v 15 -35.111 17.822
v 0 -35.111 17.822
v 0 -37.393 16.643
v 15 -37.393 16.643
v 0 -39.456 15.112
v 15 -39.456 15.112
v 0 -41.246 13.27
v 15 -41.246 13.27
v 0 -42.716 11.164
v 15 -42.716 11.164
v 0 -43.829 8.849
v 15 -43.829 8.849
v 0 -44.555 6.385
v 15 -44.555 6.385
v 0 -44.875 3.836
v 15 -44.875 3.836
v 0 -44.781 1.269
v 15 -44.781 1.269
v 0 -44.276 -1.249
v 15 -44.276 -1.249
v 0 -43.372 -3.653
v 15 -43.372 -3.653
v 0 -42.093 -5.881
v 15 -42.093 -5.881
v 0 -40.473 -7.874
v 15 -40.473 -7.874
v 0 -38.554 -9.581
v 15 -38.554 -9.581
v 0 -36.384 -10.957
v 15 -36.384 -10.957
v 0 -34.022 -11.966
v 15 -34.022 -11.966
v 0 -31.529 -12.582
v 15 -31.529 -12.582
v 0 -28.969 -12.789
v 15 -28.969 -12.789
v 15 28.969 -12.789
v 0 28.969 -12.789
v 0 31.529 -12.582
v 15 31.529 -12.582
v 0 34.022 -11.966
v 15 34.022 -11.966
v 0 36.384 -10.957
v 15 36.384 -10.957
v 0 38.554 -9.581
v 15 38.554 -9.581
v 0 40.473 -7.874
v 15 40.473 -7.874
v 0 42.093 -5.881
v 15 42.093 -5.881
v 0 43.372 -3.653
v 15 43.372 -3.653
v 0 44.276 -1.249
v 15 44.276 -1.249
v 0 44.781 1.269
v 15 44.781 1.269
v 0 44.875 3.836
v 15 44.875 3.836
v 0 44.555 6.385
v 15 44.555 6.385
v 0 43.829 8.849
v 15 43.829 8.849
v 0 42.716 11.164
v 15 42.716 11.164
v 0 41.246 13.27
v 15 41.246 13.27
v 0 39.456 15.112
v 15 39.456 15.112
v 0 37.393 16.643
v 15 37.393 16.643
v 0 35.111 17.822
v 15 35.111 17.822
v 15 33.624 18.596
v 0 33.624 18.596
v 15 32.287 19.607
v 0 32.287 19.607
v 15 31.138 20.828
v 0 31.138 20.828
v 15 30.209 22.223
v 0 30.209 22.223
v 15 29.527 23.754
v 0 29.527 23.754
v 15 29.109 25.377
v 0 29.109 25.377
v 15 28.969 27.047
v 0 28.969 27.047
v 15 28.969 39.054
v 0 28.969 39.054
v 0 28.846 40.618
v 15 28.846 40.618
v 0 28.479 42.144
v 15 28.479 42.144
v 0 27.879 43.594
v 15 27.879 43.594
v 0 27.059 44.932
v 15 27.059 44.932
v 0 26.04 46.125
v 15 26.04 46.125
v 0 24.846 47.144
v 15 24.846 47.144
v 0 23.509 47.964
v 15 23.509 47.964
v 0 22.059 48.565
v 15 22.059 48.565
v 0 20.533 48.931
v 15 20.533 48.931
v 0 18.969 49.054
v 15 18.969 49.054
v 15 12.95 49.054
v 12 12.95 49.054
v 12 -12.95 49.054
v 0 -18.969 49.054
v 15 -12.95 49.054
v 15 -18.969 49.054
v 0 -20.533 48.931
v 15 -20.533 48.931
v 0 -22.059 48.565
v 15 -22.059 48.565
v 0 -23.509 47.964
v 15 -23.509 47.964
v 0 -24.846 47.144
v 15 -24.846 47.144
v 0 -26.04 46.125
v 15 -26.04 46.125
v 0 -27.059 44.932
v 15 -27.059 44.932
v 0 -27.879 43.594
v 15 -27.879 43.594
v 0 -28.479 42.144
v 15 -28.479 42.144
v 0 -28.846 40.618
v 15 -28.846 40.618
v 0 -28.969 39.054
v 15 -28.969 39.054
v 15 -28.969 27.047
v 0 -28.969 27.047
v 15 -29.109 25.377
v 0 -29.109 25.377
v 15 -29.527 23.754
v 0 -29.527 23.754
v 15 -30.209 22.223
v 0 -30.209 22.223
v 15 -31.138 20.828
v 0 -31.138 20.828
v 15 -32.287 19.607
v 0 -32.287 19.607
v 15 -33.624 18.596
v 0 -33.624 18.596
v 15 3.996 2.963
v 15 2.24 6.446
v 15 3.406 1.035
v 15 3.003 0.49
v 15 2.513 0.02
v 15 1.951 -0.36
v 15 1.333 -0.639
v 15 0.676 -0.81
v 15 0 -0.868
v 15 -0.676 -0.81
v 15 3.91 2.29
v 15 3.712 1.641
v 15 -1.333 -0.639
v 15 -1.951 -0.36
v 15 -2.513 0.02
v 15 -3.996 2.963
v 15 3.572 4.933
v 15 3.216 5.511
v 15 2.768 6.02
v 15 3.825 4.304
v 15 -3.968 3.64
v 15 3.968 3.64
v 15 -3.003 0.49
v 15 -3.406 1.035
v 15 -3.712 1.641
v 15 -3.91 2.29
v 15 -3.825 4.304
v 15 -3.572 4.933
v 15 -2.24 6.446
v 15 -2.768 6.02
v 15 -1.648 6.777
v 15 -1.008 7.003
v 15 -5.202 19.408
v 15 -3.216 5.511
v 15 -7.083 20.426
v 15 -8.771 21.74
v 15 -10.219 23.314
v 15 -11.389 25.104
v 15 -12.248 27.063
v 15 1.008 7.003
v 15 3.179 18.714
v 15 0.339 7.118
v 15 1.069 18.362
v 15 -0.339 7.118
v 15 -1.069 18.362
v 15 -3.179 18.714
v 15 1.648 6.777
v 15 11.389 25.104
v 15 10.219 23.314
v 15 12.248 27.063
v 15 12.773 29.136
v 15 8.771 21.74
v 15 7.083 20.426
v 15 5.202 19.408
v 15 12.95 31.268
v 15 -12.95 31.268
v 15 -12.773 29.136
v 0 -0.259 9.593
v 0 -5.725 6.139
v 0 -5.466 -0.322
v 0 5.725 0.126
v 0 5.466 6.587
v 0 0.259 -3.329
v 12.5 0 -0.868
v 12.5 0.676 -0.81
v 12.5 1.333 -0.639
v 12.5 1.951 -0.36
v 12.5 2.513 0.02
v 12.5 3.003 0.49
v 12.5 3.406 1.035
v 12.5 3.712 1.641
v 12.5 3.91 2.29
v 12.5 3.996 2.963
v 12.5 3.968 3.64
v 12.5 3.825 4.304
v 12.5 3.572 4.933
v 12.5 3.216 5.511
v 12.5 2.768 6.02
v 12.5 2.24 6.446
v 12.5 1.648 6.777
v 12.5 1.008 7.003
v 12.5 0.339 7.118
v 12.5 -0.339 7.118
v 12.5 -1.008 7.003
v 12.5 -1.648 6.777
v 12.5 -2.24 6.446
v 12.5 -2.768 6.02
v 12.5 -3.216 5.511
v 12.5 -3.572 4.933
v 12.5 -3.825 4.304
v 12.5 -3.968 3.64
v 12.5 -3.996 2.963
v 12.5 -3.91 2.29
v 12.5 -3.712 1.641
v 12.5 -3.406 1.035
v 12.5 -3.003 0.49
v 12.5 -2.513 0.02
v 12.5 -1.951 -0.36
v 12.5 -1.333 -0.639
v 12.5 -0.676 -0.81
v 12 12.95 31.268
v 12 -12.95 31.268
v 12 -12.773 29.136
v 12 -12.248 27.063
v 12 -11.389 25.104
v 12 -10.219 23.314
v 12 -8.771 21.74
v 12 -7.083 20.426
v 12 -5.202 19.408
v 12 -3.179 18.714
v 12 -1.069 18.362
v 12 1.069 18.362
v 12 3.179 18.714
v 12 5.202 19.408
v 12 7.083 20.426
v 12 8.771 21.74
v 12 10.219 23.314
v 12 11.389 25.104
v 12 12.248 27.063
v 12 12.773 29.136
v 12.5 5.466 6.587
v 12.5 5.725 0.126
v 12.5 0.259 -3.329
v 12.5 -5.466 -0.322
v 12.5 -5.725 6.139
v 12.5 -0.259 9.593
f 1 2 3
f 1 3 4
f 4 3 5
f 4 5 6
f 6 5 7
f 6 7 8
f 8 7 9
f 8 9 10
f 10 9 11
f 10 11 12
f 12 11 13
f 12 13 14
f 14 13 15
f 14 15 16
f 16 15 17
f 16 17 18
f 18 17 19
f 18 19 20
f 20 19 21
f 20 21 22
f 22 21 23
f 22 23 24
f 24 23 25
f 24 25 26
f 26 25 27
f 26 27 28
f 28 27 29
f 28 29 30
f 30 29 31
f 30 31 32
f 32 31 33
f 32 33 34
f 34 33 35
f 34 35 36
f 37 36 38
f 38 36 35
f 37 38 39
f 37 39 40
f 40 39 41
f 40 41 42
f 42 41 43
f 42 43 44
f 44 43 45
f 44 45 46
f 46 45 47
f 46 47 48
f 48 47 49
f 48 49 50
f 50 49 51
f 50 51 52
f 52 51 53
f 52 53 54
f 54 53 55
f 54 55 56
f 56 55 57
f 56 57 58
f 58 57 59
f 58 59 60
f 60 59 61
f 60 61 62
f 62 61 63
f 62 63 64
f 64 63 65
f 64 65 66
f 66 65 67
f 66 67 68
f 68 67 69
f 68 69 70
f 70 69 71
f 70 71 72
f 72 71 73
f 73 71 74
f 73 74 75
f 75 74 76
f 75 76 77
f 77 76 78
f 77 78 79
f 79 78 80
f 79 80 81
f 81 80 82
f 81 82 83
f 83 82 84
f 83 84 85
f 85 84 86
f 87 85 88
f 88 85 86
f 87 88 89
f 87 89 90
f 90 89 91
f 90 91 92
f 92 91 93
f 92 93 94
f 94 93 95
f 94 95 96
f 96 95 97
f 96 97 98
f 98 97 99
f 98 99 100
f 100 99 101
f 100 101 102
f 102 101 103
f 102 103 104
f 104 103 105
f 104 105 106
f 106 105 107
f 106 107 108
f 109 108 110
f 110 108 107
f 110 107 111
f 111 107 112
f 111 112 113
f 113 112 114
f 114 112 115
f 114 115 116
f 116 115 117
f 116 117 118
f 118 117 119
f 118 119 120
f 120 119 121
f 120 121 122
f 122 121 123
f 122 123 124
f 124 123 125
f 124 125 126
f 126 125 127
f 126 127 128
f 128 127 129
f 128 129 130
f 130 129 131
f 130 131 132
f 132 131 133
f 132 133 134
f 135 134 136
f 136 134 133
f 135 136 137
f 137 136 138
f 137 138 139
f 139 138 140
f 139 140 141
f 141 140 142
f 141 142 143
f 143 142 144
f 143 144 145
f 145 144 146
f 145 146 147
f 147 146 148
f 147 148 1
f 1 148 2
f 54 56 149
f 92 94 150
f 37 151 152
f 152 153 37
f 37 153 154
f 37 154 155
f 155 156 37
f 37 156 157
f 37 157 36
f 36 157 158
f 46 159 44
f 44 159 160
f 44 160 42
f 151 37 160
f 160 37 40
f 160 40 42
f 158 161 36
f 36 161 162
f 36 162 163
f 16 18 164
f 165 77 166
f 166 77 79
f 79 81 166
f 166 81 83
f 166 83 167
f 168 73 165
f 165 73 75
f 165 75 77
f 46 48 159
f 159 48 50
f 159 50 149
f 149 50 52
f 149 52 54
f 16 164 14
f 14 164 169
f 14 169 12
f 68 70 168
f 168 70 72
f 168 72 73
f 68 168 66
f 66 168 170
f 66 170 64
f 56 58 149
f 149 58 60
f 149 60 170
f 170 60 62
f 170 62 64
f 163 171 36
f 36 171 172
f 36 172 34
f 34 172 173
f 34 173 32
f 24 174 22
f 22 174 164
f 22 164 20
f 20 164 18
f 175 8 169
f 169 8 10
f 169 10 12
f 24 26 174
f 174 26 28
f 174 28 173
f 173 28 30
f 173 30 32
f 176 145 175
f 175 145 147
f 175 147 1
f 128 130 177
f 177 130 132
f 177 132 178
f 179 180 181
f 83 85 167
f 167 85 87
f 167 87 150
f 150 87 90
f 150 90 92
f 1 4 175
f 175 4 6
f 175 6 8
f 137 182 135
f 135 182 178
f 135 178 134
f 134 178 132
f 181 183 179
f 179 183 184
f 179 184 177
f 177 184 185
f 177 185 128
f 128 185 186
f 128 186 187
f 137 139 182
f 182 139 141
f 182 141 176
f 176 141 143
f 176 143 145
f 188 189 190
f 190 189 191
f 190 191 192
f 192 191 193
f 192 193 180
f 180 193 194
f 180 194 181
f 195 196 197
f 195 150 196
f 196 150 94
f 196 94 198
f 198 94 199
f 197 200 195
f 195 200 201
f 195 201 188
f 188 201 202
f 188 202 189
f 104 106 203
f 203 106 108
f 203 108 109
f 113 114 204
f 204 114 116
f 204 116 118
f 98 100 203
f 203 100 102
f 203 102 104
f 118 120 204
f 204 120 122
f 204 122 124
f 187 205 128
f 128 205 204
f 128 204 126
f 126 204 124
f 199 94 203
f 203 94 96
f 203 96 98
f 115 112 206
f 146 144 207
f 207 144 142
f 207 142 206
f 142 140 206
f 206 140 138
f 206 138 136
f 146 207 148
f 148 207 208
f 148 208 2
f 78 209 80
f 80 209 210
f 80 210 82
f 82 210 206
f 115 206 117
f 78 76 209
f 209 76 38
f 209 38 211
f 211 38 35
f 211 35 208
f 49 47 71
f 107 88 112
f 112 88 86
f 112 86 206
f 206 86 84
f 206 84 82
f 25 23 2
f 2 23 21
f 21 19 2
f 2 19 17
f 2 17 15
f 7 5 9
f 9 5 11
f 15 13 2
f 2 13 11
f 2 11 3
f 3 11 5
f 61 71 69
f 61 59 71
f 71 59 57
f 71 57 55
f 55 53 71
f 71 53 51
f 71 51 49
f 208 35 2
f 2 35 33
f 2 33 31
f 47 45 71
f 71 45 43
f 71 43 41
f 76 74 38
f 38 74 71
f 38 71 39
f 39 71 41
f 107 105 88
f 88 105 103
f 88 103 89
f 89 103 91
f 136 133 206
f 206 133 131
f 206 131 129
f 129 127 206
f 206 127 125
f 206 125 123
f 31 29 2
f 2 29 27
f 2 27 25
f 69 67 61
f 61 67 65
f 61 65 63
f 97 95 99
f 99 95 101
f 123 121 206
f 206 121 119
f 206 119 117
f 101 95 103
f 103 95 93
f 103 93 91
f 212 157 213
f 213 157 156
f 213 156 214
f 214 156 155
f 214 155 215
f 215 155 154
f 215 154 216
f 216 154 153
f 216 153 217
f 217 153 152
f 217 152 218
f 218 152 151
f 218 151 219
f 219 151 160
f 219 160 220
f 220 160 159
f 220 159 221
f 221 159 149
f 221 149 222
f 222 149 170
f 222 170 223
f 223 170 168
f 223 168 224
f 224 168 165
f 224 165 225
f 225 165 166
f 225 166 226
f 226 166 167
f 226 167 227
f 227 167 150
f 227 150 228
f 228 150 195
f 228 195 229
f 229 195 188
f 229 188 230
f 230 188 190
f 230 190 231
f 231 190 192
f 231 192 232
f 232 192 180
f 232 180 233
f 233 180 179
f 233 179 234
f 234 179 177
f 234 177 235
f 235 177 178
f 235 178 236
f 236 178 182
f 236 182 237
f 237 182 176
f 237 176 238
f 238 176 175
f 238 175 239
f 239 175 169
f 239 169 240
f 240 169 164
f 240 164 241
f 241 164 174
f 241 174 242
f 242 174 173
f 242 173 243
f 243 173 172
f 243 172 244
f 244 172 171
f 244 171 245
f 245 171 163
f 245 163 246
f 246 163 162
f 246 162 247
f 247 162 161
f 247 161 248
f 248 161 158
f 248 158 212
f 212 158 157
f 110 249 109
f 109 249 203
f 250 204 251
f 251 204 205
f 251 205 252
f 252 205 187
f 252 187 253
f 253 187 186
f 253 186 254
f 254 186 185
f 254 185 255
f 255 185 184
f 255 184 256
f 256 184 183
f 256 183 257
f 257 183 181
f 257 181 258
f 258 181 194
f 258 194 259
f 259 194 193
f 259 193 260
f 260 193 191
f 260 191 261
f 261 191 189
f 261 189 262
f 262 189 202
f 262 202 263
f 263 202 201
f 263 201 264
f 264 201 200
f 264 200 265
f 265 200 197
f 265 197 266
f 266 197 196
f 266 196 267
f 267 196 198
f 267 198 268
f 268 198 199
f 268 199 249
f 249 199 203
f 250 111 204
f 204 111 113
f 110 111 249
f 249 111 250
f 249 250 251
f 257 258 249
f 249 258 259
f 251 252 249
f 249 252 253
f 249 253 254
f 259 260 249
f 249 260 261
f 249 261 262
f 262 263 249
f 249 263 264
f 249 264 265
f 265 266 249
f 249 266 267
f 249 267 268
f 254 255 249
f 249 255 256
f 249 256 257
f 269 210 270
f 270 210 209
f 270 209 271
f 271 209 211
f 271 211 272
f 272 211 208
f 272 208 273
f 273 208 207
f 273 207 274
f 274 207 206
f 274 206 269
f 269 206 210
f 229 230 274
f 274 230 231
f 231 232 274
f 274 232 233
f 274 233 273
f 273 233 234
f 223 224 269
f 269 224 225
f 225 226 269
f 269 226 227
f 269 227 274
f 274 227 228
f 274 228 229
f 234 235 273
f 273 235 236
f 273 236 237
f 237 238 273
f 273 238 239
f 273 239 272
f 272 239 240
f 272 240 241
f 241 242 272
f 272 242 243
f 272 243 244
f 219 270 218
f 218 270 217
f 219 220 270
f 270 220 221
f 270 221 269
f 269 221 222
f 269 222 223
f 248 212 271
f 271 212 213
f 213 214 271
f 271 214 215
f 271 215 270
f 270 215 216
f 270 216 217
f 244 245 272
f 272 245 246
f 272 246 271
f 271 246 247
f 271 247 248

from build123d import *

# Parameters (mm, degrees)
BOSS_EXTRUDE3_DEPTH = 15
SKETCH3_R           = 4
CUT_EXTRUDE3_DEPTH  = 14.0462
CUT_EXTRUDE4_DEPTH  = 3
CUT_EXTRUDE5_START  = -15
CUT_EXTRUDE5_DEPTH  = 12.5


with BuildPart() as part:
    # Sketch1 → Boss-Extrude3 (new body)
    with BuildSketch(Plane.YZ):
        with BuildLine():
            Line((-28.968617751, -12.789334175), (28.968617751, -12.789334175))
            ThreePointArc((28.968617751, -12.789334175), (44.579120821, 0), (35.110840206, 17.821518929))
            ThreePointArc((35.110840206, 17.821518929), (30.644623053, 21.505675602), (28.968617751, 27.047436358))
            Line((28.968617751, 27.047436358), (28.968617751, 39.053986921))
            ThreePointArc((28.968617751, 39.053986921), (26.039685563, 46.125054733), (18.968617751, 49.053986921))
            Line((18.968617751, 49.053986921), (-18.968617751, 49.053986921))
            ThreePointArc((-18.968617751, 49.053986921), (-26.039685563, 46.125054733), (-28.968617751, 39.053986921))
            Line((-28.968617751, 39.053986921), (-28.968617751, 27.047436358))
            ThreePointArc((-28.968617751, 27.047436358), (-30.644623053, 21.505675602), (-35.110840206, 17.821518929))
            ThreePointArc((-35.110840206, 17.821518929), (-44.579120821, 0), (-28.968617751, -12.789334175))
        make_face()
    extrude(amount=BOSS_EXTRUDE3_DEPTH)

    # Sketch3 → Cut-Extrude3 (cut)
    with BuildSketch(Plane.YZ.offset(15)):
        with Locations(Location((0, 3.132326373, 0), (0, 0, 270))):
            Circle(SKETCH3_R)
    extrude(amount=-CUT_EXTRUDE3_DEPTH, mode=Mode.SUBTRACT)

    # Sketch4 → Cut-Extrude4 (cut)
    with BuildSketch(Plane.YZ.offset(15)):
        with BuildLine():
            Line((-12.95, 49.053986921), (-12.95, 31.267703884))
            ThreePointArc((-12.95, 31.267703884), (0, 18.317703884), (12.95, 31.267703884))
            Line((12.95, 31.267703884), (12.95, 49.053986921))
            Line((12.95, 49.053986921), (-12.95, 49.053986921))
        make_face()
    extrude(amount=-CUT_EXTRUDE4_DEPTH, mode=Mode.SUBTRACT)

    # Sketch5 → Cut-Extrude5 (cut, symmetric)
    with BuildSketch(Plane.YZ.offset(15).offset(CUT_EXTRUDE5_START)):
        Polygon((5.466157569, 6.586954394), (-0.258716842, 9.5934717), (-5.724874411, 6.138843679), (-5.466157569, -0.322301647), (0.258716842, -3.328818953), (5.724874411, 0.125809067), align=None)
    extrude(amount=CUT_EXTRUDE5_DEPTH, both=True, mode=Mode.SUBTRACT)


solid = part.part
